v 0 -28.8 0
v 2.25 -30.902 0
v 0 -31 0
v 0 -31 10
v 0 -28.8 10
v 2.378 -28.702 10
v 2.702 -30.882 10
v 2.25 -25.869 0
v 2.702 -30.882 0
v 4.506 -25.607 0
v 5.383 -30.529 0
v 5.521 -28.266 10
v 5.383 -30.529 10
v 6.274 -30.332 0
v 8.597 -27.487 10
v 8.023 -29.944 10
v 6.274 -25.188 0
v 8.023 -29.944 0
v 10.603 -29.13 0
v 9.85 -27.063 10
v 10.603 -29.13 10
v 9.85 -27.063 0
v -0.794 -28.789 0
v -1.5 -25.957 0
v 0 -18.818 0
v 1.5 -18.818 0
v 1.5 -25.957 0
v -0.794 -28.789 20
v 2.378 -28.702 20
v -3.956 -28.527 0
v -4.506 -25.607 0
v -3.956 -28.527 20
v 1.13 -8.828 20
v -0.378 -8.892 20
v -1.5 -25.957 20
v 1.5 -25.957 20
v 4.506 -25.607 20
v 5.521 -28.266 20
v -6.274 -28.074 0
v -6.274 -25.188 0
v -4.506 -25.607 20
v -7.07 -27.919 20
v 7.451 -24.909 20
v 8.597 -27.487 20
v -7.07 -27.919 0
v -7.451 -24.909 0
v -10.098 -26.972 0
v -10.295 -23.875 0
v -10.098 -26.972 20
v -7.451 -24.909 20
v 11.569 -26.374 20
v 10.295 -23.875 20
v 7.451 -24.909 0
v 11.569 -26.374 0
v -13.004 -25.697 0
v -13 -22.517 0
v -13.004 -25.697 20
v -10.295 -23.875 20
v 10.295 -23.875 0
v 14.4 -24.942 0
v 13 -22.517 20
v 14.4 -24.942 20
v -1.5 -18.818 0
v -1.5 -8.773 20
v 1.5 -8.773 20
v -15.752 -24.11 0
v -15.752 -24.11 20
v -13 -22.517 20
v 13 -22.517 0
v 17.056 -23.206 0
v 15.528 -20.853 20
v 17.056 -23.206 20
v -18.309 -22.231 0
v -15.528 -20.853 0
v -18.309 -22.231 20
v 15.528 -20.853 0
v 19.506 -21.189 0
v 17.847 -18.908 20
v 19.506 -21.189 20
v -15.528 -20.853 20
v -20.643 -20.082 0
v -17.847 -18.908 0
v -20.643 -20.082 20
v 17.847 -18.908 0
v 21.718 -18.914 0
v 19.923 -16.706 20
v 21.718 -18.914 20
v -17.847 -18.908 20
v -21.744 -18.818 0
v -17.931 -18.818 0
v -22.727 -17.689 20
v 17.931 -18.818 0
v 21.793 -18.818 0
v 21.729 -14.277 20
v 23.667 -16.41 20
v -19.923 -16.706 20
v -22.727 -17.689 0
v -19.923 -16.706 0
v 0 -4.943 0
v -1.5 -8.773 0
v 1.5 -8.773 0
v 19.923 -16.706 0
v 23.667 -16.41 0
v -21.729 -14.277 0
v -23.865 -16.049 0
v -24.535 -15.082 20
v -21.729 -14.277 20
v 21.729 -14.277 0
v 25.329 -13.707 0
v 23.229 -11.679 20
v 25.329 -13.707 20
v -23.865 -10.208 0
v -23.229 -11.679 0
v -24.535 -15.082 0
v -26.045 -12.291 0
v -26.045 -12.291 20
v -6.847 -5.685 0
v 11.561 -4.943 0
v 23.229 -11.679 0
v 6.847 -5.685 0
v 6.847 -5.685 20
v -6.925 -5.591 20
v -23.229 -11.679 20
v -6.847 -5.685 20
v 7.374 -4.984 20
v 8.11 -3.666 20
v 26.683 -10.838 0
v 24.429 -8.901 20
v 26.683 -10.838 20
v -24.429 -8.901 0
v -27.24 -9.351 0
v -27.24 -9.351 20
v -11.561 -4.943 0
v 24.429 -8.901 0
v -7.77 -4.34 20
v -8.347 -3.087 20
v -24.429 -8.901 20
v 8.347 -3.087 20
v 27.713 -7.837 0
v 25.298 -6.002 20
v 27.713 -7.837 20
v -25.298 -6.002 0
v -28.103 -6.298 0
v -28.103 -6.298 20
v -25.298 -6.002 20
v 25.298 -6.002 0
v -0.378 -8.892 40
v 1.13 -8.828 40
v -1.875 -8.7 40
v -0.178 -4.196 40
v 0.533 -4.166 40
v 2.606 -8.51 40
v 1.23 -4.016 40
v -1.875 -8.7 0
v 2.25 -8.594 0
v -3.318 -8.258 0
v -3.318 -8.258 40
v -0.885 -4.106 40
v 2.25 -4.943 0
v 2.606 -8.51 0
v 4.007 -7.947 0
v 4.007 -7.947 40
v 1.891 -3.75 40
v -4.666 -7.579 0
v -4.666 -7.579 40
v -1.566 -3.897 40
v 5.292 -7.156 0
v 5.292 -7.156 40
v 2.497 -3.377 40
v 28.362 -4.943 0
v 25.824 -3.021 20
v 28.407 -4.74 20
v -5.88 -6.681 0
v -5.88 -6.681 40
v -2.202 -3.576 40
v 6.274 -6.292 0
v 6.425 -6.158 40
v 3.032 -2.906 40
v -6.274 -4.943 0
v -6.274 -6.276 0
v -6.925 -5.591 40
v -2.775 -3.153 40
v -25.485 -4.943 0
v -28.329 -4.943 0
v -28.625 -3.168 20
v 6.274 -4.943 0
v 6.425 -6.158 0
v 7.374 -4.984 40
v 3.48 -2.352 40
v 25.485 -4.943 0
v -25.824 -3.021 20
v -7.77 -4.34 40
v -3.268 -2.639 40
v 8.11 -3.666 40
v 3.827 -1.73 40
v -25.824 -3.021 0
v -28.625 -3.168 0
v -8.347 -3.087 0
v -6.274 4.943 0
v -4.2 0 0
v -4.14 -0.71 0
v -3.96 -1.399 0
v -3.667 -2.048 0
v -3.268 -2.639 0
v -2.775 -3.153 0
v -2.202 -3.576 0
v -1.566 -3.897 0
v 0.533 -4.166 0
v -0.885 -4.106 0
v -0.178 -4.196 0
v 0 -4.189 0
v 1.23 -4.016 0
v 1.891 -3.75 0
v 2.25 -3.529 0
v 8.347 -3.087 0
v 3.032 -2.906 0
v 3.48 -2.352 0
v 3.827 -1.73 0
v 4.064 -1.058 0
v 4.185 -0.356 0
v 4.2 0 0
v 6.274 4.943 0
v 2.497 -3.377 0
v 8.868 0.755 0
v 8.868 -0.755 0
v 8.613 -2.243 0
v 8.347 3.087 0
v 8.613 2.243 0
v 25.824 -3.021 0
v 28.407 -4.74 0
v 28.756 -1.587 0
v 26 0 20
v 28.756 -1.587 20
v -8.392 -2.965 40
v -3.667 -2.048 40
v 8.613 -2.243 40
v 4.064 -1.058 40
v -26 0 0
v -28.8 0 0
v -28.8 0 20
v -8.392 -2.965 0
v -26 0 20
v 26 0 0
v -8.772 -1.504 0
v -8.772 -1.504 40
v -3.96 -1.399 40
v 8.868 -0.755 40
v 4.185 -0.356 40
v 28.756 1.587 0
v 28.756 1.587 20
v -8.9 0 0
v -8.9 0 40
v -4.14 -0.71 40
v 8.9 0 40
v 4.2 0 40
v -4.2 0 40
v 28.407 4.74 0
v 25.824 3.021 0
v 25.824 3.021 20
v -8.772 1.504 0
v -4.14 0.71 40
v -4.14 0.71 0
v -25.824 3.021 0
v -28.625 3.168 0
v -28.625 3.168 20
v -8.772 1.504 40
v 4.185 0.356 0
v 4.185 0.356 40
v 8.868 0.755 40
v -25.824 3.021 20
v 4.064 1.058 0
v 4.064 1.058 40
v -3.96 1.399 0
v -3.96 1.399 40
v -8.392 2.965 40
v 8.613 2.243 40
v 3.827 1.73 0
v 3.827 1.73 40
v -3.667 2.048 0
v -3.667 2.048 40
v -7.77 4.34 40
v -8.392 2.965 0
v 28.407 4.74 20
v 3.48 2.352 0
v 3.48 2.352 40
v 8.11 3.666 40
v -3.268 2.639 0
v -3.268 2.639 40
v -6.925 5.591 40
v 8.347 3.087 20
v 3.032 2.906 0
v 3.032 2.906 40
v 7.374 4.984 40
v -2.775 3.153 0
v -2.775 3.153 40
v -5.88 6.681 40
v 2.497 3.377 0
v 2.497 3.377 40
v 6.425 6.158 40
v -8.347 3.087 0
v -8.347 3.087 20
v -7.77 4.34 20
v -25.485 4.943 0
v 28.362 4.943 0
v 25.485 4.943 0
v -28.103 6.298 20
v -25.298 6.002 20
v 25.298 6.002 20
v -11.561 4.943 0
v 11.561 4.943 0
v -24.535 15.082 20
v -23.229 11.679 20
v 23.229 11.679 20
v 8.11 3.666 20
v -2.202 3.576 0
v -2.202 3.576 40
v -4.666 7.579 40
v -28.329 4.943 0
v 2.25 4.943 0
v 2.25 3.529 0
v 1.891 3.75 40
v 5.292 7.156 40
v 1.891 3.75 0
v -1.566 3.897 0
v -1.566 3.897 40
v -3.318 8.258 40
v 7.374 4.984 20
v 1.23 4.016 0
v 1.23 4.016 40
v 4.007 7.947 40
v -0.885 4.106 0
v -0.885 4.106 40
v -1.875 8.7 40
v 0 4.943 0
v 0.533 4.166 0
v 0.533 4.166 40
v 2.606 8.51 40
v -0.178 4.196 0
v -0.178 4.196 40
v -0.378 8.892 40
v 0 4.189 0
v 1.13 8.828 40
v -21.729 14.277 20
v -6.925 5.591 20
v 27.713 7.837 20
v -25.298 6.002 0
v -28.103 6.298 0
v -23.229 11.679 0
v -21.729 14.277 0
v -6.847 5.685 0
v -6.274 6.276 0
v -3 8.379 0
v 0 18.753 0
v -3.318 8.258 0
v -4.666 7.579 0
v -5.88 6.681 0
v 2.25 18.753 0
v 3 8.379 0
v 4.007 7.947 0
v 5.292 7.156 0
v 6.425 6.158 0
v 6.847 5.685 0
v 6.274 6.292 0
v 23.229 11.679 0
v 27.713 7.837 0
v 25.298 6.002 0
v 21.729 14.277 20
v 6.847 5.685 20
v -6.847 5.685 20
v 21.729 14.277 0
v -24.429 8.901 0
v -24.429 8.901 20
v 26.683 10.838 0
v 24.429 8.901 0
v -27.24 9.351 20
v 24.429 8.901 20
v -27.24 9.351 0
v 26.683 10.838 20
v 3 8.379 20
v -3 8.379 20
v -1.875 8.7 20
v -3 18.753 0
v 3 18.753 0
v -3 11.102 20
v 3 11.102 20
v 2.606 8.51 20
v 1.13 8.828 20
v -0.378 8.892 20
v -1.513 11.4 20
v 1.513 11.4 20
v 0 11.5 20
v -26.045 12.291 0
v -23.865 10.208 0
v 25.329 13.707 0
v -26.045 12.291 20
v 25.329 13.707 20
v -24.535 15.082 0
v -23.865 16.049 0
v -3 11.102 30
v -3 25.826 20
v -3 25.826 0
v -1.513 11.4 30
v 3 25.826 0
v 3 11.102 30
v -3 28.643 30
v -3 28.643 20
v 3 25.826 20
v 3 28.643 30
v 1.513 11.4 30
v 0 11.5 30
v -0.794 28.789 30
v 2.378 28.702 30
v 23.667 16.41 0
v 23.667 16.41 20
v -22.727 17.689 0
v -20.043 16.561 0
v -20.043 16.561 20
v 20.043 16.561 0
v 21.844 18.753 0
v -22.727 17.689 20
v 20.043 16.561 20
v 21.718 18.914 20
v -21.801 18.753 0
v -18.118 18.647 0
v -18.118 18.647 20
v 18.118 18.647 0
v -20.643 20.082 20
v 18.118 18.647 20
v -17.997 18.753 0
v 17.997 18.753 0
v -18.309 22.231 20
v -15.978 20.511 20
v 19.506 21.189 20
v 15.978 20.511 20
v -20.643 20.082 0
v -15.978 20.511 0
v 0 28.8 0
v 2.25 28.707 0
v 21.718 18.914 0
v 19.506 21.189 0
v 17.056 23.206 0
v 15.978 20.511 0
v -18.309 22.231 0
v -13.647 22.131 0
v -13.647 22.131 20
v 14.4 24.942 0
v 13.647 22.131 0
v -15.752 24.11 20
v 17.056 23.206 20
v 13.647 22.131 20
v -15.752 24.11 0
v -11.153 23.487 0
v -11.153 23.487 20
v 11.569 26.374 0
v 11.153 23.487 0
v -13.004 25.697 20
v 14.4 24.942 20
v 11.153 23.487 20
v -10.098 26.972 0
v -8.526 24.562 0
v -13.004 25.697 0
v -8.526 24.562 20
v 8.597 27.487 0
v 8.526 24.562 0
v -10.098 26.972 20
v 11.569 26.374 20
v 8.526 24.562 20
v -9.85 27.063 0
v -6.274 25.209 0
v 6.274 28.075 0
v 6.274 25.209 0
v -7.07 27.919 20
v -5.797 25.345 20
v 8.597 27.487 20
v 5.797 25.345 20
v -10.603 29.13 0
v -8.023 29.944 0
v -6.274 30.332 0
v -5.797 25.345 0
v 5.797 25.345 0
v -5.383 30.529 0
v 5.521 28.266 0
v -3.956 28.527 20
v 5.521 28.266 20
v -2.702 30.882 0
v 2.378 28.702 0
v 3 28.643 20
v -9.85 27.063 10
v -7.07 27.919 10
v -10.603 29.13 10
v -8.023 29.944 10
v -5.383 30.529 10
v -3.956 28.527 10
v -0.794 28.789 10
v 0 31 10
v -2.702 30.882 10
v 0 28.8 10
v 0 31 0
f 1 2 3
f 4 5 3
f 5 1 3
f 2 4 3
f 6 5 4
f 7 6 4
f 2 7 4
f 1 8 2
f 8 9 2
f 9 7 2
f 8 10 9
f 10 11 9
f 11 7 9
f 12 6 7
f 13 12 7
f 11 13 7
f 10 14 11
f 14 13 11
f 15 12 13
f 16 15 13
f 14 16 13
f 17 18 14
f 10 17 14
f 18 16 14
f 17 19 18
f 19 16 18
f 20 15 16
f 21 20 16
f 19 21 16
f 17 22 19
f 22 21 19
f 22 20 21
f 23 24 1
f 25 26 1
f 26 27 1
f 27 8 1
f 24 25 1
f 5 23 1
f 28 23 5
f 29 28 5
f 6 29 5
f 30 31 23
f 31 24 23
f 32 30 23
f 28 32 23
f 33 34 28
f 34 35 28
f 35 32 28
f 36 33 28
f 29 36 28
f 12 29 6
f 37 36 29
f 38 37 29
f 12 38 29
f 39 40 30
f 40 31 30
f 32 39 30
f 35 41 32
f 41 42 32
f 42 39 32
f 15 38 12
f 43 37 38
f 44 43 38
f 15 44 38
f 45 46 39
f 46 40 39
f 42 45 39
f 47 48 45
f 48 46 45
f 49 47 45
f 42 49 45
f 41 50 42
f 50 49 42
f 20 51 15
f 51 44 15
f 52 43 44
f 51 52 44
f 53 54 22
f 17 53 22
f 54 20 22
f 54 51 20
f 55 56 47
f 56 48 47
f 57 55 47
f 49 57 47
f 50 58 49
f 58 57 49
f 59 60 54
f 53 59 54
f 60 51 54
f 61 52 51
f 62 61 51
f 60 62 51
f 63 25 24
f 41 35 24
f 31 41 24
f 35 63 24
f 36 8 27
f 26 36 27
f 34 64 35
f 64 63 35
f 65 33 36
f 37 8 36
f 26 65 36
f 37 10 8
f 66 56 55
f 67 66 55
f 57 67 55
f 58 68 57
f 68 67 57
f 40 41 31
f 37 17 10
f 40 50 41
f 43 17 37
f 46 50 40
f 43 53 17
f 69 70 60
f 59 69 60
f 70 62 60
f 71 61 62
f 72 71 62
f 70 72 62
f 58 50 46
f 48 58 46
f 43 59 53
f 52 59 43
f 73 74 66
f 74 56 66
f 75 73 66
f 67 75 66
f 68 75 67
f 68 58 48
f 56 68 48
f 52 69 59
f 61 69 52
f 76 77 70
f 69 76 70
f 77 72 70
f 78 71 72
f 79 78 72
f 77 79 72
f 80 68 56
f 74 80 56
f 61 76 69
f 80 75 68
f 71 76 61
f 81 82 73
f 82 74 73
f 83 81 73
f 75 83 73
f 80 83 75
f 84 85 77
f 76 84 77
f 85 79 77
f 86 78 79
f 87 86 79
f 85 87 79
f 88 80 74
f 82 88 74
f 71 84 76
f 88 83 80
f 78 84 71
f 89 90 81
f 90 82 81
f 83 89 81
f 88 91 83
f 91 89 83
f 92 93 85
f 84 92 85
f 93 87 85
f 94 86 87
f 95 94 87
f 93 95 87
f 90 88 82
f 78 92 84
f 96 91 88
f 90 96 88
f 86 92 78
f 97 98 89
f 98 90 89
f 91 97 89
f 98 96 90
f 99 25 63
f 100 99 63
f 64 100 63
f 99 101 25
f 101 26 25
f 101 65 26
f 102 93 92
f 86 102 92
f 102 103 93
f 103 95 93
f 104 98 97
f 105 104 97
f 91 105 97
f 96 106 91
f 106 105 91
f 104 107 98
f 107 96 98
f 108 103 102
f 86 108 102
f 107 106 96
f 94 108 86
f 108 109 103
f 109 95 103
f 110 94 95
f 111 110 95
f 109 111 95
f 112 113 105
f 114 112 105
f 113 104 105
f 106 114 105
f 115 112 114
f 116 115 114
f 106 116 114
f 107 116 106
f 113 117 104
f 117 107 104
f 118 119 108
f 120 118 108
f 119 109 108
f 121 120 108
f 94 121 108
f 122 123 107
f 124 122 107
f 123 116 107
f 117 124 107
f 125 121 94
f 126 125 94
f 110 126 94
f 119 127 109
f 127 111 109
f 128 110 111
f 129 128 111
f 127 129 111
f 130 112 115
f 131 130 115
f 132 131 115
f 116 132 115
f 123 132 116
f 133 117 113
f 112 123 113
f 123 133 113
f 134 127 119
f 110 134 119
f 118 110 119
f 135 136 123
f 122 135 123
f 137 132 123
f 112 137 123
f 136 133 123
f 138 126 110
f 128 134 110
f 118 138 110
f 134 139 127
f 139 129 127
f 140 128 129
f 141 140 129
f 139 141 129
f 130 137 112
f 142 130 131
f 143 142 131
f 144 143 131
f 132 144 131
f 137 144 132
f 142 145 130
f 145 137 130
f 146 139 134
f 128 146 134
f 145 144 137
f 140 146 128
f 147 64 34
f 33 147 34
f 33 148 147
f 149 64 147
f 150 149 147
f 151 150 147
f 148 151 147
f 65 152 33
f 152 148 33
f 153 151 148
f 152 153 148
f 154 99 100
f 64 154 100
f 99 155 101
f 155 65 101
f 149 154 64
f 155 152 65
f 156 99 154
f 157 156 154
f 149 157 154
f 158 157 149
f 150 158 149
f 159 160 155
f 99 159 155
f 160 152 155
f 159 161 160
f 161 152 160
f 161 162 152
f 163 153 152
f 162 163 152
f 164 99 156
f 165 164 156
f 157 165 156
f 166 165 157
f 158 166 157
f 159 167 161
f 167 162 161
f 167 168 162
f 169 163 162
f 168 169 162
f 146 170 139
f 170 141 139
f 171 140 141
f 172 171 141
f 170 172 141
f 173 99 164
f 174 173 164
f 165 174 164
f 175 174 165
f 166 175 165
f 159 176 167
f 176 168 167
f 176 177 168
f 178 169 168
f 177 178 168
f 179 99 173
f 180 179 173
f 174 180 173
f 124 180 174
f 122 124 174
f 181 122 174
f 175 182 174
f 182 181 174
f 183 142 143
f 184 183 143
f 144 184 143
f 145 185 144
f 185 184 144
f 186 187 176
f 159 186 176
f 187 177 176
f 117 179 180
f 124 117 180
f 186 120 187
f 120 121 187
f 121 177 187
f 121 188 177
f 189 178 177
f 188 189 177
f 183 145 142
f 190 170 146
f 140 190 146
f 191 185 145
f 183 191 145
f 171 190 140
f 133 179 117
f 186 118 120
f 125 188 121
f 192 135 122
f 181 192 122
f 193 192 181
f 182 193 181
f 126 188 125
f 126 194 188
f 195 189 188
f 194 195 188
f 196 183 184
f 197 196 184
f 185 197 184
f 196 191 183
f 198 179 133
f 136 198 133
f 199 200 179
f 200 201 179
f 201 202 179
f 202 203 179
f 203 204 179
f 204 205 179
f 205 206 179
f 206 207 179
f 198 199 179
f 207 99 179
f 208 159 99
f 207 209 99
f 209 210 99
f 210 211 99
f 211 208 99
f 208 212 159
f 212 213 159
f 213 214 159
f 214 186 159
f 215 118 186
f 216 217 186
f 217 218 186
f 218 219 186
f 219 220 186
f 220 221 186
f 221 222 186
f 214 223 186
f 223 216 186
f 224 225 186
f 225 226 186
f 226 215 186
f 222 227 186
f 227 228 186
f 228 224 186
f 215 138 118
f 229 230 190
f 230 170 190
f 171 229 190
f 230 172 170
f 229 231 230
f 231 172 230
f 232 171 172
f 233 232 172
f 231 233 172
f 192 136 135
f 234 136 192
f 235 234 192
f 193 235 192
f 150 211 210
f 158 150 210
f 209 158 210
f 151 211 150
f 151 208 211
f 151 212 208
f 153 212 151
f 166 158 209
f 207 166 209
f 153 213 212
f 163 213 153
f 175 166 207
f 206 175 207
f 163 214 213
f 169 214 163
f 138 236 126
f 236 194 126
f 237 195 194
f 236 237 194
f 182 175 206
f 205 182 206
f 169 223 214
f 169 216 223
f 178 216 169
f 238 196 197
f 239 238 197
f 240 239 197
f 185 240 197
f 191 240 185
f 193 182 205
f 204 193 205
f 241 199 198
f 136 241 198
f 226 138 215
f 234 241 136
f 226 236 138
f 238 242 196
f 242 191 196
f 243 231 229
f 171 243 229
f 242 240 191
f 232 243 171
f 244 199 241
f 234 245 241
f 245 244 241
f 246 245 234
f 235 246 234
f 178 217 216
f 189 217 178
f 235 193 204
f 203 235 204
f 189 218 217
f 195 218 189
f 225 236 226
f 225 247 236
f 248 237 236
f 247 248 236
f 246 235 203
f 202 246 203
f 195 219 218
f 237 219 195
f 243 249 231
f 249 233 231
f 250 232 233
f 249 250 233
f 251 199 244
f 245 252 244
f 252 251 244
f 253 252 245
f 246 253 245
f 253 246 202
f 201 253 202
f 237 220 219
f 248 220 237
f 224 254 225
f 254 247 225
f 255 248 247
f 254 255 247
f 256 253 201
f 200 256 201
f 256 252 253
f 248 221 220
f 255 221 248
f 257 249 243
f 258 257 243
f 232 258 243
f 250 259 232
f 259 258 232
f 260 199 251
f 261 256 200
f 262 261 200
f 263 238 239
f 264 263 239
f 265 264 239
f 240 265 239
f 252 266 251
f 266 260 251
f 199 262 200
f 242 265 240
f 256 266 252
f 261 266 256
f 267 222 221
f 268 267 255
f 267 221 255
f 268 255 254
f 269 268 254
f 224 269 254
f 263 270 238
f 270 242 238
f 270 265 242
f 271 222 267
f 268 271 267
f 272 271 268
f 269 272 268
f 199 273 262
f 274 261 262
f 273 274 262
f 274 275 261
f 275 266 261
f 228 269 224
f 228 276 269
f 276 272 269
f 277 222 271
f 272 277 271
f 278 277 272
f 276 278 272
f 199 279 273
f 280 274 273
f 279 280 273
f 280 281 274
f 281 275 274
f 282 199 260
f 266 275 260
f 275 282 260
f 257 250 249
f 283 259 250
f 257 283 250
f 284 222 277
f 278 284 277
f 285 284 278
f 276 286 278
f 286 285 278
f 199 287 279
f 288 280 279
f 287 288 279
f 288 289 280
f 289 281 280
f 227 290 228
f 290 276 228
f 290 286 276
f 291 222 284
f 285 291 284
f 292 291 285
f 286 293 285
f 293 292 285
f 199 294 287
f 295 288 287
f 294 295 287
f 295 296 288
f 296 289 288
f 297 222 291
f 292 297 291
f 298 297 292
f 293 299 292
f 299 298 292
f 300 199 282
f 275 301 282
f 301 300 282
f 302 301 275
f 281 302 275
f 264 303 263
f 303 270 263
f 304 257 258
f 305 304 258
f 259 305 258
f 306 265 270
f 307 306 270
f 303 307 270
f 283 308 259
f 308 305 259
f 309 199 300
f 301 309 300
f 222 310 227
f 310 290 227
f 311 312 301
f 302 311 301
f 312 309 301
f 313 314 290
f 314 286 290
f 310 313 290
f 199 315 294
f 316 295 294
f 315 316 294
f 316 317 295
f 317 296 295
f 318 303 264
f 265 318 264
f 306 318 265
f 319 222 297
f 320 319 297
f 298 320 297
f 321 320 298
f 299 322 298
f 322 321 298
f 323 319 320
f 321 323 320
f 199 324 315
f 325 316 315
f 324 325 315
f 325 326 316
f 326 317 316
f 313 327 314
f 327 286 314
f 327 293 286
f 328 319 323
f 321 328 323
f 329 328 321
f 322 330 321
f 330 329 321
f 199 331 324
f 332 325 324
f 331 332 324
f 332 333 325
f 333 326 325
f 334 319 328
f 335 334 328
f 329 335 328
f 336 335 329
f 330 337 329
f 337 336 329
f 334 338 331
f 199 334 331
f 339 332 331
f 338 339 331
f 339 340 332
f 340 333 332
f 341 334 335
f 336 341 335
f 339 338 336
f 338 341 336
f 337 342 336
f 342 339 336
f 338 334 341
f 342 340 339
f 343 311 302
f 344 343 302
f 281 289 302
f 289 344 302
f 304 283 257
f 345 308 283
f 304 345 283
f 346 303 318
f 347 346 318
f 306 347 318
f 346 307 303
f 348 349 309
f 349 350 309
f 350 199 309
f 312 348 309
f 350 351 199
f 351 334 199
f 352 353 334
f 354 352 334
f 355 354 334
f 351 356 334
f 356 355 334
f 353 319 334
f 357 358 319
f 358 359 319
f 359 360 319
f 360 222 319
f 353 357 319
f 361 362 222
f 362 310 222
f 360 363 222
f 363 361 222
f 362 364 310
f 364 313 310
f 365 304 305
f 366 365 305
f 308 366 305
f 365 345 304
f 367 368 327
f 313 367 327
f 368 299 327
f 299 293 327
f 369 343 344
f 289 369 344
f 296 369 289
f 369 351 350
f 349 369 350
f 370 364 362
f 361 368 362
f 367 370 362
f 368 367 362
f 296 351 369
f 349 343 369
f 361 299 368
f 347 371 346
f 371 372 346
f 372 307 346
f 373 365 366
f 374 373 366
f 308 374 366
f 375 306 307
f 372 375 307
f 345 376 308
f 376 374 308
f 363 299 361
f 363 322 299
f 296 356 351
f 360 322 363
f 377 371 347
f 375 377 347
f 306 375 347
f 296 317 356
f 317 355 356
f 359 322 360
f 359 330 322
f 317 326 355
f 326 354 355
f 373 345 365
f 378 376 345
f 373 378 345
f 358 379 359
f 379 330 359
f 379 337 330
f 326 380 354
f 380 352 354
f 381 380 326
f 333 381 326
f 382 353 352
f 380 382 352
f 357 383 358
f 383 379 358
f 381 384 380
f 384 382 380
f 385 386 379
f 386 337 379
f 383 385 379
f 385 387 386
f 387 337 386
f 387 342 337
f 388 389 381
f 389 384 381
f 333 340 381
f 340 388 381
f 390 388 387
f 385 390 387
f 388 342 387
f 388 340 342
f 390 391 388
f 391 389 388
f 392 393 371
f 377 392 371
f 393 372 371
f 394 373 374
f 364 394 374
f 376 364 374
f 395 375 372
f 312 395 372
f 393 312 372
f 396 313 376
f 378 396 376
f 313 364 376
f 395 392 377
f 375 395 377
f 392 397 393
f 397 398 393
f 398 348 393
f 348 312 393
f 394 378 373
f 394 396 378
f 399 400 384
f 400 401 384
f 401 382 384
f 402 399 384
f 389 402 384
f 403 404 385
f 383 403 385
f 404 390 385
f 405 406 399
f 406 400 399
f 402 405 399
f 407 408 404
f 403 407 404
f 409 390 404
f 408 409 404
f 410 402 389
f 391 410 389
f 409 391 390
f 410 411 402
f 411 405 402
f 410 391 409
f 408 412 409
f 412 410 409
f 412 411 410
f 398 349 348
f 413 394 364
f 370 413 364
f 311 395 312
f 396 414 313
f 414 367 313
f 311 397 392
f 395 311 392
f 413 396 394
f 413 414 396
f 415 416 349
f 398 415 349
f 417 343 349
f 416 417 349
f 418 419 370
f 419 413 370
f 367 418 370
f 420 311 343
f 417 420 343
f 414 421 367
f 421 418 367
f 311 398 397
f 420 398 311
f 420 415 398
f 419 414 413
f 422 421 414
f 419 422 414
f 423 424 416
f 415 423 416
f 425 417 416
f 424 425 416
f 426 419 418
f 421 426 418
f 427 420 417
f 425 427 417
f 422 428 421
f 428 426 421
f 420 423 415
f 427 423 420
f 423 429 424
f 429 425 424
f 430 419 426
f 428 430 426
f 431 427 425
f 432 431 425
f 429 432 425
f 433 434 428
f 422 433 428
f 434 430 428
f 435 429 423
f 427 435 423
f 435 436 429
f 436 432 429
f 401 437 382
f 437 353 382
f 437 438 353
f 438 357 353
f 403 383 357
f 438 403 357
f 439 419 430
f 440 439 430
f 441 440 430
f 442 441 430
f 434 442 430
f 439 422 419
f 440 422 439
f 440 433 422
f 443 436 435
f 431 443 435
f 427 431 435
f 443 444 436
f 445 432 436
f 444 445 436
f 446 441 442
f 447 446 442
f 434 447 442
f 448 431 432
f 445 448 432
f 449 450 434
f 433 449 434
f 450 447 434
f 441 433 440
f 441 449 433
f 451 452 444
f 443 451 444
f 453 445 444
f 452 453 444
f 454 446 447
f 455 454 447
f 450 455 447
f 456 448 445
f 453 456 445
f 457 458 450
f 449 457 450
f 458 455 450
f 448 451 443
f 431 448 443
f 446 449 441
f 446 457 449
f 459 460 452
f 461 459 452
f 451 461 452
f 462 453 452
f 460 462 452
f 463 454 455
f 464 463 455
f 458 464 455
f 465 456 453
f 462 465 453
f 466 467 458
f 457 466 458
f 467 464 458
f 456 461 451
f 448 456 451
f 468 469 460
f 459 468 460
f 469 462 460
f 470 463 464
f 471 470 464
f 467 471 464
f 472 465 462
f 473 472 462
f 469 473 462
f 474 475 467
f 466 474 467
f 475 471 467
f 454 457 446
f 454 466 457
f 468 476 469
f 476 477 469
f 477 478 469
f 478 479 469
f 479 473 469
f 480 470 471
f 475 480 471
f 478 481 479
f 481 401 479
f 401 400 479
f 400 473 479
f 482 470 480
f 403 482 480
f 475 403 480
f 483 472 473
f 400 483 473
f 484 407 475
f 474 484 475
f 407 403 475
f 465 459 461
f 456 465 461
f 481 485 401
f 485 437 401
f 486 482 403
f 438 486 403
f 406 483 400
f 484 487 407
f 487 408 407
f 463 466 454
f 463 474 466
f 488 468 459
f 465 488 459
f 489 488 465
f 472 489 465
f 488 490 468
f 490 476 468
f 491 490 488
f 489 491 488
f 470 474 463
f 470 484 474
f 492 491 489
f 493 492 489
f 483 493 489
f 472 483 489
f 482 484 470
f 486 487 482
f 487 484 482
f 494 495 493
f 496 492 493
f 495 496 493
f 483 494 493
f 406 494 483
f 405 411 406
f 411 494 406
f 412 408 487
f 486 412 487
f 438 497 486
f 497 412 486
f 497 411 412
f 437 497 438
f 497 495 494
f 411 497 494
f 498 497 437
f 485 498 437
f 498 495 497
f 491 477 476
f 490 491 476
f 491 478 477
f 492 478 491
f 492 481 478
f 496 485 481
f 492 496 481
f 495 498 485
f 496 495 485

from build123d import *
from build123d.topology import SkipClean

# Parameters (mm, degrees)
SKETCH_1_R          = 4.2
EXTRUDE_1_DEPTH     = 10
SKETCH_2_R          = 28.8
EXTRUDE_2_DEPTH     = 10
SKETCH_3_R          = 8.9
EXTRUDE_3_DEPTH     = 20
SKETCH_4_R          = 4.2
CUT_EXTRUDE_1_DEPTH = 59.227484919
CUT_EXTRUDE_2_DEPTH = 47.802136703
SKETCH_8_W          = 6
SKETCH_8_H          = 20.041446809
EXTRUDE_4_DEPTH     = 20
EXTRUDE_5_DEPTH     = 10


with BuildPart() as part:
    # 草图1 → 凸台-拉伸1 (new body)
    with BuildSketch(Plane.XY):
        with BuildLine():
            Line((0, 31), (0, 28.8))
            ThreePointArc((0, 28.8), (28.362463287, 5.001067517), (9.850180128, -27.063147479))
            Line((9.850180128, -27.063147479), (10.602624443, -29.130471244))
            ThreePointArc((10.602624443, -29.130471244), (5.383093508, -30.529040343), (0, -31))
            Line((0, -31), (0, -28.8))
            ThreePointArc((0, -28.8), (-28.362463287, -5.001067517), (-9.850180128, 27.063147479))
            Line((-9.850180128, 27.063147479), (-10.602624443, 29.130471244))
            ThreePointArc((-10.602624443, 29.130471244), (-5.383093508, 30.529040343), (0, 31))
        make_face()
        Circle(SKETCH_1_R, mode=Mode.SUBTRACT)
    extrude(amount=EXTRUDE_1_DEPTH)

    # 草图2 → 凸台-拉伸2 (add)
    with BuildSketch(Plane.XY.offset(10)):
        with Locations(Location((0, 0, 0), (0, 0, 110))):
            Circle(SKETCH_2_R)
    extrude(amount=EXTRUDE_2_DEPTH)

    # 草图3 → 凸台-拉伸3 (add)
    with BuildSketch(Plane.XY.offset(20)):
        Circle(SKETCH_3_R)
    extrude(amount=EXTRUDE_3_DEPTH)

    # 草图4 → 切除-拉伸1 (cut, through all)
    with BuildSketch(Plane.XY.offset(40)):
        Circle(SKETCH_4_R)
    extrude(amount=-CUT_EXTRUDE_1_DEPTH, mode=Mode.SUBTRACT)

    # 草图5 → 切除-拉伸2 (cut, through all)
    with BuildSketch(Plane.XY.offset(20)):
        with BuildLine():
            Line((21.729157013, 14.277385458), (6.847367965, 5.685380546))
            ThreePointArc((6.847367965, 5.685380546), (4.45, 7.707626094), (1.5, 8.77268488))
            Line((1.5, 8.77268488), (1.5, 25.956694705))
            ThreePointArc((1.5, 25.956694705), (13, 22.516660498), (21.729157013, 14.277385458))
        make_face()
        with BuildLine():
            Line((-1.5, 25.956694705), (-1.5, 8.77268488))
            ThreePointArc((-1.5, 8.77268488), (-4.45, 7.707626094), (-6.847367965, 5.685380546))
            Line((-6.847367965, 5.685380546), (-21.729157013, 14.277385458))
            ThreePointArc((-21.729157013, 14.277385458), (-13, 22.516660498), (-1.5, 25.956694705))
        make_face()
        with BuildLine():
            Line((23.229157013, 11.679309247), (8.347367965, 3.087304334))
            ThreePointArc((8.347367965, 3.087304334), (8.9, 0), (8.347367965, -3.087304334))
            Line((8.347367965, -3.087304334), (23.229157013, -11.679309247))
            ThreePointArc((23.229157013, -11.679309247), (26, 0), (23.229157013, 11.679309247))
        make_face()
        with BuildLine():
            Line((21.729157013, -14.277385458), (6.847367965, -5.685380546))
            ThreePointArc((6.847367965, -5.685380546), (4.45, -7.707626094), (1.5, -8.77268488))
            Line((1.5, -8.77268488), (1.5, -25.956694705))
            ThreePointArc((1.5, -25.956694705), (13, -22.516660498), (21.729157013, -14.277385458))
        make_face()
        with BuildLine():
            Line((-1.5, -25.956694705), (-1.5, -8.77268488))
            ThreePointArc((-1.5, -8.77268488), (-4.45, -7.707626094), (-6.847367965, -5.685380546))
            Line((-6.847367965, -5.685380546), (-21.729157013, -14.277385458))
            ThreePointArc((-21.729157013, -14.277385458), (-13, -22.516660498), (-1.5, -25.956694705))
        make_face()
        with BuildLine():
            Line((-23.229157013, -11.679309247), (-8.347367965, -3.087304334))
            ThreePointArc((-8.347367965, -3.087304334), (-8.9, 0), (-8.347367965, 3.087304334))
            Line((-8.347367965, 3.087304334), (-23.229157013, 11.679309247))
            ThreePointArc((-23.229157013, 11.679309247), (-26, 0), (-23.229157013, -11.679309247))
        make_face()
    extrude(amount=-CUT_EXTRUDE_2_DEPTH, mode=Mode.SUBTRACT)

    # 草图8 → 凸台-拉伸4 (add)
    with BuildSketch(Plane.XY.offset(20)):
        with Locations((0, 17.104380285)):
            Rectangle(SKETCH_8_W, SKETCH_8_H)
    extrude(amount=-EXTRUDE_4_DEPTH)

    # 草图9 → 凸台-拉伸5 (add)
    with SkipClean():  # the faces are left unmerged after this step: merging them gives an invalid solid
        with BuildSketch(Plane.XY.offset(20)):
            with BuildLine():
                Line((-3, 28.643323829), (-3, 11.101801656))
                ThreePointArc((-3, 11.101801656), (0, 11.5), (3, 11.101801656))
                Line((3, 11.101801656), (3, 28.643323829))
                ThreePointArc((3, 28.643323829), (0, 28.8), (-3, 28.643323829))
            make_face()
        extrude(amount=EXTRUDE_5_DEPTH)


solid = part.part
